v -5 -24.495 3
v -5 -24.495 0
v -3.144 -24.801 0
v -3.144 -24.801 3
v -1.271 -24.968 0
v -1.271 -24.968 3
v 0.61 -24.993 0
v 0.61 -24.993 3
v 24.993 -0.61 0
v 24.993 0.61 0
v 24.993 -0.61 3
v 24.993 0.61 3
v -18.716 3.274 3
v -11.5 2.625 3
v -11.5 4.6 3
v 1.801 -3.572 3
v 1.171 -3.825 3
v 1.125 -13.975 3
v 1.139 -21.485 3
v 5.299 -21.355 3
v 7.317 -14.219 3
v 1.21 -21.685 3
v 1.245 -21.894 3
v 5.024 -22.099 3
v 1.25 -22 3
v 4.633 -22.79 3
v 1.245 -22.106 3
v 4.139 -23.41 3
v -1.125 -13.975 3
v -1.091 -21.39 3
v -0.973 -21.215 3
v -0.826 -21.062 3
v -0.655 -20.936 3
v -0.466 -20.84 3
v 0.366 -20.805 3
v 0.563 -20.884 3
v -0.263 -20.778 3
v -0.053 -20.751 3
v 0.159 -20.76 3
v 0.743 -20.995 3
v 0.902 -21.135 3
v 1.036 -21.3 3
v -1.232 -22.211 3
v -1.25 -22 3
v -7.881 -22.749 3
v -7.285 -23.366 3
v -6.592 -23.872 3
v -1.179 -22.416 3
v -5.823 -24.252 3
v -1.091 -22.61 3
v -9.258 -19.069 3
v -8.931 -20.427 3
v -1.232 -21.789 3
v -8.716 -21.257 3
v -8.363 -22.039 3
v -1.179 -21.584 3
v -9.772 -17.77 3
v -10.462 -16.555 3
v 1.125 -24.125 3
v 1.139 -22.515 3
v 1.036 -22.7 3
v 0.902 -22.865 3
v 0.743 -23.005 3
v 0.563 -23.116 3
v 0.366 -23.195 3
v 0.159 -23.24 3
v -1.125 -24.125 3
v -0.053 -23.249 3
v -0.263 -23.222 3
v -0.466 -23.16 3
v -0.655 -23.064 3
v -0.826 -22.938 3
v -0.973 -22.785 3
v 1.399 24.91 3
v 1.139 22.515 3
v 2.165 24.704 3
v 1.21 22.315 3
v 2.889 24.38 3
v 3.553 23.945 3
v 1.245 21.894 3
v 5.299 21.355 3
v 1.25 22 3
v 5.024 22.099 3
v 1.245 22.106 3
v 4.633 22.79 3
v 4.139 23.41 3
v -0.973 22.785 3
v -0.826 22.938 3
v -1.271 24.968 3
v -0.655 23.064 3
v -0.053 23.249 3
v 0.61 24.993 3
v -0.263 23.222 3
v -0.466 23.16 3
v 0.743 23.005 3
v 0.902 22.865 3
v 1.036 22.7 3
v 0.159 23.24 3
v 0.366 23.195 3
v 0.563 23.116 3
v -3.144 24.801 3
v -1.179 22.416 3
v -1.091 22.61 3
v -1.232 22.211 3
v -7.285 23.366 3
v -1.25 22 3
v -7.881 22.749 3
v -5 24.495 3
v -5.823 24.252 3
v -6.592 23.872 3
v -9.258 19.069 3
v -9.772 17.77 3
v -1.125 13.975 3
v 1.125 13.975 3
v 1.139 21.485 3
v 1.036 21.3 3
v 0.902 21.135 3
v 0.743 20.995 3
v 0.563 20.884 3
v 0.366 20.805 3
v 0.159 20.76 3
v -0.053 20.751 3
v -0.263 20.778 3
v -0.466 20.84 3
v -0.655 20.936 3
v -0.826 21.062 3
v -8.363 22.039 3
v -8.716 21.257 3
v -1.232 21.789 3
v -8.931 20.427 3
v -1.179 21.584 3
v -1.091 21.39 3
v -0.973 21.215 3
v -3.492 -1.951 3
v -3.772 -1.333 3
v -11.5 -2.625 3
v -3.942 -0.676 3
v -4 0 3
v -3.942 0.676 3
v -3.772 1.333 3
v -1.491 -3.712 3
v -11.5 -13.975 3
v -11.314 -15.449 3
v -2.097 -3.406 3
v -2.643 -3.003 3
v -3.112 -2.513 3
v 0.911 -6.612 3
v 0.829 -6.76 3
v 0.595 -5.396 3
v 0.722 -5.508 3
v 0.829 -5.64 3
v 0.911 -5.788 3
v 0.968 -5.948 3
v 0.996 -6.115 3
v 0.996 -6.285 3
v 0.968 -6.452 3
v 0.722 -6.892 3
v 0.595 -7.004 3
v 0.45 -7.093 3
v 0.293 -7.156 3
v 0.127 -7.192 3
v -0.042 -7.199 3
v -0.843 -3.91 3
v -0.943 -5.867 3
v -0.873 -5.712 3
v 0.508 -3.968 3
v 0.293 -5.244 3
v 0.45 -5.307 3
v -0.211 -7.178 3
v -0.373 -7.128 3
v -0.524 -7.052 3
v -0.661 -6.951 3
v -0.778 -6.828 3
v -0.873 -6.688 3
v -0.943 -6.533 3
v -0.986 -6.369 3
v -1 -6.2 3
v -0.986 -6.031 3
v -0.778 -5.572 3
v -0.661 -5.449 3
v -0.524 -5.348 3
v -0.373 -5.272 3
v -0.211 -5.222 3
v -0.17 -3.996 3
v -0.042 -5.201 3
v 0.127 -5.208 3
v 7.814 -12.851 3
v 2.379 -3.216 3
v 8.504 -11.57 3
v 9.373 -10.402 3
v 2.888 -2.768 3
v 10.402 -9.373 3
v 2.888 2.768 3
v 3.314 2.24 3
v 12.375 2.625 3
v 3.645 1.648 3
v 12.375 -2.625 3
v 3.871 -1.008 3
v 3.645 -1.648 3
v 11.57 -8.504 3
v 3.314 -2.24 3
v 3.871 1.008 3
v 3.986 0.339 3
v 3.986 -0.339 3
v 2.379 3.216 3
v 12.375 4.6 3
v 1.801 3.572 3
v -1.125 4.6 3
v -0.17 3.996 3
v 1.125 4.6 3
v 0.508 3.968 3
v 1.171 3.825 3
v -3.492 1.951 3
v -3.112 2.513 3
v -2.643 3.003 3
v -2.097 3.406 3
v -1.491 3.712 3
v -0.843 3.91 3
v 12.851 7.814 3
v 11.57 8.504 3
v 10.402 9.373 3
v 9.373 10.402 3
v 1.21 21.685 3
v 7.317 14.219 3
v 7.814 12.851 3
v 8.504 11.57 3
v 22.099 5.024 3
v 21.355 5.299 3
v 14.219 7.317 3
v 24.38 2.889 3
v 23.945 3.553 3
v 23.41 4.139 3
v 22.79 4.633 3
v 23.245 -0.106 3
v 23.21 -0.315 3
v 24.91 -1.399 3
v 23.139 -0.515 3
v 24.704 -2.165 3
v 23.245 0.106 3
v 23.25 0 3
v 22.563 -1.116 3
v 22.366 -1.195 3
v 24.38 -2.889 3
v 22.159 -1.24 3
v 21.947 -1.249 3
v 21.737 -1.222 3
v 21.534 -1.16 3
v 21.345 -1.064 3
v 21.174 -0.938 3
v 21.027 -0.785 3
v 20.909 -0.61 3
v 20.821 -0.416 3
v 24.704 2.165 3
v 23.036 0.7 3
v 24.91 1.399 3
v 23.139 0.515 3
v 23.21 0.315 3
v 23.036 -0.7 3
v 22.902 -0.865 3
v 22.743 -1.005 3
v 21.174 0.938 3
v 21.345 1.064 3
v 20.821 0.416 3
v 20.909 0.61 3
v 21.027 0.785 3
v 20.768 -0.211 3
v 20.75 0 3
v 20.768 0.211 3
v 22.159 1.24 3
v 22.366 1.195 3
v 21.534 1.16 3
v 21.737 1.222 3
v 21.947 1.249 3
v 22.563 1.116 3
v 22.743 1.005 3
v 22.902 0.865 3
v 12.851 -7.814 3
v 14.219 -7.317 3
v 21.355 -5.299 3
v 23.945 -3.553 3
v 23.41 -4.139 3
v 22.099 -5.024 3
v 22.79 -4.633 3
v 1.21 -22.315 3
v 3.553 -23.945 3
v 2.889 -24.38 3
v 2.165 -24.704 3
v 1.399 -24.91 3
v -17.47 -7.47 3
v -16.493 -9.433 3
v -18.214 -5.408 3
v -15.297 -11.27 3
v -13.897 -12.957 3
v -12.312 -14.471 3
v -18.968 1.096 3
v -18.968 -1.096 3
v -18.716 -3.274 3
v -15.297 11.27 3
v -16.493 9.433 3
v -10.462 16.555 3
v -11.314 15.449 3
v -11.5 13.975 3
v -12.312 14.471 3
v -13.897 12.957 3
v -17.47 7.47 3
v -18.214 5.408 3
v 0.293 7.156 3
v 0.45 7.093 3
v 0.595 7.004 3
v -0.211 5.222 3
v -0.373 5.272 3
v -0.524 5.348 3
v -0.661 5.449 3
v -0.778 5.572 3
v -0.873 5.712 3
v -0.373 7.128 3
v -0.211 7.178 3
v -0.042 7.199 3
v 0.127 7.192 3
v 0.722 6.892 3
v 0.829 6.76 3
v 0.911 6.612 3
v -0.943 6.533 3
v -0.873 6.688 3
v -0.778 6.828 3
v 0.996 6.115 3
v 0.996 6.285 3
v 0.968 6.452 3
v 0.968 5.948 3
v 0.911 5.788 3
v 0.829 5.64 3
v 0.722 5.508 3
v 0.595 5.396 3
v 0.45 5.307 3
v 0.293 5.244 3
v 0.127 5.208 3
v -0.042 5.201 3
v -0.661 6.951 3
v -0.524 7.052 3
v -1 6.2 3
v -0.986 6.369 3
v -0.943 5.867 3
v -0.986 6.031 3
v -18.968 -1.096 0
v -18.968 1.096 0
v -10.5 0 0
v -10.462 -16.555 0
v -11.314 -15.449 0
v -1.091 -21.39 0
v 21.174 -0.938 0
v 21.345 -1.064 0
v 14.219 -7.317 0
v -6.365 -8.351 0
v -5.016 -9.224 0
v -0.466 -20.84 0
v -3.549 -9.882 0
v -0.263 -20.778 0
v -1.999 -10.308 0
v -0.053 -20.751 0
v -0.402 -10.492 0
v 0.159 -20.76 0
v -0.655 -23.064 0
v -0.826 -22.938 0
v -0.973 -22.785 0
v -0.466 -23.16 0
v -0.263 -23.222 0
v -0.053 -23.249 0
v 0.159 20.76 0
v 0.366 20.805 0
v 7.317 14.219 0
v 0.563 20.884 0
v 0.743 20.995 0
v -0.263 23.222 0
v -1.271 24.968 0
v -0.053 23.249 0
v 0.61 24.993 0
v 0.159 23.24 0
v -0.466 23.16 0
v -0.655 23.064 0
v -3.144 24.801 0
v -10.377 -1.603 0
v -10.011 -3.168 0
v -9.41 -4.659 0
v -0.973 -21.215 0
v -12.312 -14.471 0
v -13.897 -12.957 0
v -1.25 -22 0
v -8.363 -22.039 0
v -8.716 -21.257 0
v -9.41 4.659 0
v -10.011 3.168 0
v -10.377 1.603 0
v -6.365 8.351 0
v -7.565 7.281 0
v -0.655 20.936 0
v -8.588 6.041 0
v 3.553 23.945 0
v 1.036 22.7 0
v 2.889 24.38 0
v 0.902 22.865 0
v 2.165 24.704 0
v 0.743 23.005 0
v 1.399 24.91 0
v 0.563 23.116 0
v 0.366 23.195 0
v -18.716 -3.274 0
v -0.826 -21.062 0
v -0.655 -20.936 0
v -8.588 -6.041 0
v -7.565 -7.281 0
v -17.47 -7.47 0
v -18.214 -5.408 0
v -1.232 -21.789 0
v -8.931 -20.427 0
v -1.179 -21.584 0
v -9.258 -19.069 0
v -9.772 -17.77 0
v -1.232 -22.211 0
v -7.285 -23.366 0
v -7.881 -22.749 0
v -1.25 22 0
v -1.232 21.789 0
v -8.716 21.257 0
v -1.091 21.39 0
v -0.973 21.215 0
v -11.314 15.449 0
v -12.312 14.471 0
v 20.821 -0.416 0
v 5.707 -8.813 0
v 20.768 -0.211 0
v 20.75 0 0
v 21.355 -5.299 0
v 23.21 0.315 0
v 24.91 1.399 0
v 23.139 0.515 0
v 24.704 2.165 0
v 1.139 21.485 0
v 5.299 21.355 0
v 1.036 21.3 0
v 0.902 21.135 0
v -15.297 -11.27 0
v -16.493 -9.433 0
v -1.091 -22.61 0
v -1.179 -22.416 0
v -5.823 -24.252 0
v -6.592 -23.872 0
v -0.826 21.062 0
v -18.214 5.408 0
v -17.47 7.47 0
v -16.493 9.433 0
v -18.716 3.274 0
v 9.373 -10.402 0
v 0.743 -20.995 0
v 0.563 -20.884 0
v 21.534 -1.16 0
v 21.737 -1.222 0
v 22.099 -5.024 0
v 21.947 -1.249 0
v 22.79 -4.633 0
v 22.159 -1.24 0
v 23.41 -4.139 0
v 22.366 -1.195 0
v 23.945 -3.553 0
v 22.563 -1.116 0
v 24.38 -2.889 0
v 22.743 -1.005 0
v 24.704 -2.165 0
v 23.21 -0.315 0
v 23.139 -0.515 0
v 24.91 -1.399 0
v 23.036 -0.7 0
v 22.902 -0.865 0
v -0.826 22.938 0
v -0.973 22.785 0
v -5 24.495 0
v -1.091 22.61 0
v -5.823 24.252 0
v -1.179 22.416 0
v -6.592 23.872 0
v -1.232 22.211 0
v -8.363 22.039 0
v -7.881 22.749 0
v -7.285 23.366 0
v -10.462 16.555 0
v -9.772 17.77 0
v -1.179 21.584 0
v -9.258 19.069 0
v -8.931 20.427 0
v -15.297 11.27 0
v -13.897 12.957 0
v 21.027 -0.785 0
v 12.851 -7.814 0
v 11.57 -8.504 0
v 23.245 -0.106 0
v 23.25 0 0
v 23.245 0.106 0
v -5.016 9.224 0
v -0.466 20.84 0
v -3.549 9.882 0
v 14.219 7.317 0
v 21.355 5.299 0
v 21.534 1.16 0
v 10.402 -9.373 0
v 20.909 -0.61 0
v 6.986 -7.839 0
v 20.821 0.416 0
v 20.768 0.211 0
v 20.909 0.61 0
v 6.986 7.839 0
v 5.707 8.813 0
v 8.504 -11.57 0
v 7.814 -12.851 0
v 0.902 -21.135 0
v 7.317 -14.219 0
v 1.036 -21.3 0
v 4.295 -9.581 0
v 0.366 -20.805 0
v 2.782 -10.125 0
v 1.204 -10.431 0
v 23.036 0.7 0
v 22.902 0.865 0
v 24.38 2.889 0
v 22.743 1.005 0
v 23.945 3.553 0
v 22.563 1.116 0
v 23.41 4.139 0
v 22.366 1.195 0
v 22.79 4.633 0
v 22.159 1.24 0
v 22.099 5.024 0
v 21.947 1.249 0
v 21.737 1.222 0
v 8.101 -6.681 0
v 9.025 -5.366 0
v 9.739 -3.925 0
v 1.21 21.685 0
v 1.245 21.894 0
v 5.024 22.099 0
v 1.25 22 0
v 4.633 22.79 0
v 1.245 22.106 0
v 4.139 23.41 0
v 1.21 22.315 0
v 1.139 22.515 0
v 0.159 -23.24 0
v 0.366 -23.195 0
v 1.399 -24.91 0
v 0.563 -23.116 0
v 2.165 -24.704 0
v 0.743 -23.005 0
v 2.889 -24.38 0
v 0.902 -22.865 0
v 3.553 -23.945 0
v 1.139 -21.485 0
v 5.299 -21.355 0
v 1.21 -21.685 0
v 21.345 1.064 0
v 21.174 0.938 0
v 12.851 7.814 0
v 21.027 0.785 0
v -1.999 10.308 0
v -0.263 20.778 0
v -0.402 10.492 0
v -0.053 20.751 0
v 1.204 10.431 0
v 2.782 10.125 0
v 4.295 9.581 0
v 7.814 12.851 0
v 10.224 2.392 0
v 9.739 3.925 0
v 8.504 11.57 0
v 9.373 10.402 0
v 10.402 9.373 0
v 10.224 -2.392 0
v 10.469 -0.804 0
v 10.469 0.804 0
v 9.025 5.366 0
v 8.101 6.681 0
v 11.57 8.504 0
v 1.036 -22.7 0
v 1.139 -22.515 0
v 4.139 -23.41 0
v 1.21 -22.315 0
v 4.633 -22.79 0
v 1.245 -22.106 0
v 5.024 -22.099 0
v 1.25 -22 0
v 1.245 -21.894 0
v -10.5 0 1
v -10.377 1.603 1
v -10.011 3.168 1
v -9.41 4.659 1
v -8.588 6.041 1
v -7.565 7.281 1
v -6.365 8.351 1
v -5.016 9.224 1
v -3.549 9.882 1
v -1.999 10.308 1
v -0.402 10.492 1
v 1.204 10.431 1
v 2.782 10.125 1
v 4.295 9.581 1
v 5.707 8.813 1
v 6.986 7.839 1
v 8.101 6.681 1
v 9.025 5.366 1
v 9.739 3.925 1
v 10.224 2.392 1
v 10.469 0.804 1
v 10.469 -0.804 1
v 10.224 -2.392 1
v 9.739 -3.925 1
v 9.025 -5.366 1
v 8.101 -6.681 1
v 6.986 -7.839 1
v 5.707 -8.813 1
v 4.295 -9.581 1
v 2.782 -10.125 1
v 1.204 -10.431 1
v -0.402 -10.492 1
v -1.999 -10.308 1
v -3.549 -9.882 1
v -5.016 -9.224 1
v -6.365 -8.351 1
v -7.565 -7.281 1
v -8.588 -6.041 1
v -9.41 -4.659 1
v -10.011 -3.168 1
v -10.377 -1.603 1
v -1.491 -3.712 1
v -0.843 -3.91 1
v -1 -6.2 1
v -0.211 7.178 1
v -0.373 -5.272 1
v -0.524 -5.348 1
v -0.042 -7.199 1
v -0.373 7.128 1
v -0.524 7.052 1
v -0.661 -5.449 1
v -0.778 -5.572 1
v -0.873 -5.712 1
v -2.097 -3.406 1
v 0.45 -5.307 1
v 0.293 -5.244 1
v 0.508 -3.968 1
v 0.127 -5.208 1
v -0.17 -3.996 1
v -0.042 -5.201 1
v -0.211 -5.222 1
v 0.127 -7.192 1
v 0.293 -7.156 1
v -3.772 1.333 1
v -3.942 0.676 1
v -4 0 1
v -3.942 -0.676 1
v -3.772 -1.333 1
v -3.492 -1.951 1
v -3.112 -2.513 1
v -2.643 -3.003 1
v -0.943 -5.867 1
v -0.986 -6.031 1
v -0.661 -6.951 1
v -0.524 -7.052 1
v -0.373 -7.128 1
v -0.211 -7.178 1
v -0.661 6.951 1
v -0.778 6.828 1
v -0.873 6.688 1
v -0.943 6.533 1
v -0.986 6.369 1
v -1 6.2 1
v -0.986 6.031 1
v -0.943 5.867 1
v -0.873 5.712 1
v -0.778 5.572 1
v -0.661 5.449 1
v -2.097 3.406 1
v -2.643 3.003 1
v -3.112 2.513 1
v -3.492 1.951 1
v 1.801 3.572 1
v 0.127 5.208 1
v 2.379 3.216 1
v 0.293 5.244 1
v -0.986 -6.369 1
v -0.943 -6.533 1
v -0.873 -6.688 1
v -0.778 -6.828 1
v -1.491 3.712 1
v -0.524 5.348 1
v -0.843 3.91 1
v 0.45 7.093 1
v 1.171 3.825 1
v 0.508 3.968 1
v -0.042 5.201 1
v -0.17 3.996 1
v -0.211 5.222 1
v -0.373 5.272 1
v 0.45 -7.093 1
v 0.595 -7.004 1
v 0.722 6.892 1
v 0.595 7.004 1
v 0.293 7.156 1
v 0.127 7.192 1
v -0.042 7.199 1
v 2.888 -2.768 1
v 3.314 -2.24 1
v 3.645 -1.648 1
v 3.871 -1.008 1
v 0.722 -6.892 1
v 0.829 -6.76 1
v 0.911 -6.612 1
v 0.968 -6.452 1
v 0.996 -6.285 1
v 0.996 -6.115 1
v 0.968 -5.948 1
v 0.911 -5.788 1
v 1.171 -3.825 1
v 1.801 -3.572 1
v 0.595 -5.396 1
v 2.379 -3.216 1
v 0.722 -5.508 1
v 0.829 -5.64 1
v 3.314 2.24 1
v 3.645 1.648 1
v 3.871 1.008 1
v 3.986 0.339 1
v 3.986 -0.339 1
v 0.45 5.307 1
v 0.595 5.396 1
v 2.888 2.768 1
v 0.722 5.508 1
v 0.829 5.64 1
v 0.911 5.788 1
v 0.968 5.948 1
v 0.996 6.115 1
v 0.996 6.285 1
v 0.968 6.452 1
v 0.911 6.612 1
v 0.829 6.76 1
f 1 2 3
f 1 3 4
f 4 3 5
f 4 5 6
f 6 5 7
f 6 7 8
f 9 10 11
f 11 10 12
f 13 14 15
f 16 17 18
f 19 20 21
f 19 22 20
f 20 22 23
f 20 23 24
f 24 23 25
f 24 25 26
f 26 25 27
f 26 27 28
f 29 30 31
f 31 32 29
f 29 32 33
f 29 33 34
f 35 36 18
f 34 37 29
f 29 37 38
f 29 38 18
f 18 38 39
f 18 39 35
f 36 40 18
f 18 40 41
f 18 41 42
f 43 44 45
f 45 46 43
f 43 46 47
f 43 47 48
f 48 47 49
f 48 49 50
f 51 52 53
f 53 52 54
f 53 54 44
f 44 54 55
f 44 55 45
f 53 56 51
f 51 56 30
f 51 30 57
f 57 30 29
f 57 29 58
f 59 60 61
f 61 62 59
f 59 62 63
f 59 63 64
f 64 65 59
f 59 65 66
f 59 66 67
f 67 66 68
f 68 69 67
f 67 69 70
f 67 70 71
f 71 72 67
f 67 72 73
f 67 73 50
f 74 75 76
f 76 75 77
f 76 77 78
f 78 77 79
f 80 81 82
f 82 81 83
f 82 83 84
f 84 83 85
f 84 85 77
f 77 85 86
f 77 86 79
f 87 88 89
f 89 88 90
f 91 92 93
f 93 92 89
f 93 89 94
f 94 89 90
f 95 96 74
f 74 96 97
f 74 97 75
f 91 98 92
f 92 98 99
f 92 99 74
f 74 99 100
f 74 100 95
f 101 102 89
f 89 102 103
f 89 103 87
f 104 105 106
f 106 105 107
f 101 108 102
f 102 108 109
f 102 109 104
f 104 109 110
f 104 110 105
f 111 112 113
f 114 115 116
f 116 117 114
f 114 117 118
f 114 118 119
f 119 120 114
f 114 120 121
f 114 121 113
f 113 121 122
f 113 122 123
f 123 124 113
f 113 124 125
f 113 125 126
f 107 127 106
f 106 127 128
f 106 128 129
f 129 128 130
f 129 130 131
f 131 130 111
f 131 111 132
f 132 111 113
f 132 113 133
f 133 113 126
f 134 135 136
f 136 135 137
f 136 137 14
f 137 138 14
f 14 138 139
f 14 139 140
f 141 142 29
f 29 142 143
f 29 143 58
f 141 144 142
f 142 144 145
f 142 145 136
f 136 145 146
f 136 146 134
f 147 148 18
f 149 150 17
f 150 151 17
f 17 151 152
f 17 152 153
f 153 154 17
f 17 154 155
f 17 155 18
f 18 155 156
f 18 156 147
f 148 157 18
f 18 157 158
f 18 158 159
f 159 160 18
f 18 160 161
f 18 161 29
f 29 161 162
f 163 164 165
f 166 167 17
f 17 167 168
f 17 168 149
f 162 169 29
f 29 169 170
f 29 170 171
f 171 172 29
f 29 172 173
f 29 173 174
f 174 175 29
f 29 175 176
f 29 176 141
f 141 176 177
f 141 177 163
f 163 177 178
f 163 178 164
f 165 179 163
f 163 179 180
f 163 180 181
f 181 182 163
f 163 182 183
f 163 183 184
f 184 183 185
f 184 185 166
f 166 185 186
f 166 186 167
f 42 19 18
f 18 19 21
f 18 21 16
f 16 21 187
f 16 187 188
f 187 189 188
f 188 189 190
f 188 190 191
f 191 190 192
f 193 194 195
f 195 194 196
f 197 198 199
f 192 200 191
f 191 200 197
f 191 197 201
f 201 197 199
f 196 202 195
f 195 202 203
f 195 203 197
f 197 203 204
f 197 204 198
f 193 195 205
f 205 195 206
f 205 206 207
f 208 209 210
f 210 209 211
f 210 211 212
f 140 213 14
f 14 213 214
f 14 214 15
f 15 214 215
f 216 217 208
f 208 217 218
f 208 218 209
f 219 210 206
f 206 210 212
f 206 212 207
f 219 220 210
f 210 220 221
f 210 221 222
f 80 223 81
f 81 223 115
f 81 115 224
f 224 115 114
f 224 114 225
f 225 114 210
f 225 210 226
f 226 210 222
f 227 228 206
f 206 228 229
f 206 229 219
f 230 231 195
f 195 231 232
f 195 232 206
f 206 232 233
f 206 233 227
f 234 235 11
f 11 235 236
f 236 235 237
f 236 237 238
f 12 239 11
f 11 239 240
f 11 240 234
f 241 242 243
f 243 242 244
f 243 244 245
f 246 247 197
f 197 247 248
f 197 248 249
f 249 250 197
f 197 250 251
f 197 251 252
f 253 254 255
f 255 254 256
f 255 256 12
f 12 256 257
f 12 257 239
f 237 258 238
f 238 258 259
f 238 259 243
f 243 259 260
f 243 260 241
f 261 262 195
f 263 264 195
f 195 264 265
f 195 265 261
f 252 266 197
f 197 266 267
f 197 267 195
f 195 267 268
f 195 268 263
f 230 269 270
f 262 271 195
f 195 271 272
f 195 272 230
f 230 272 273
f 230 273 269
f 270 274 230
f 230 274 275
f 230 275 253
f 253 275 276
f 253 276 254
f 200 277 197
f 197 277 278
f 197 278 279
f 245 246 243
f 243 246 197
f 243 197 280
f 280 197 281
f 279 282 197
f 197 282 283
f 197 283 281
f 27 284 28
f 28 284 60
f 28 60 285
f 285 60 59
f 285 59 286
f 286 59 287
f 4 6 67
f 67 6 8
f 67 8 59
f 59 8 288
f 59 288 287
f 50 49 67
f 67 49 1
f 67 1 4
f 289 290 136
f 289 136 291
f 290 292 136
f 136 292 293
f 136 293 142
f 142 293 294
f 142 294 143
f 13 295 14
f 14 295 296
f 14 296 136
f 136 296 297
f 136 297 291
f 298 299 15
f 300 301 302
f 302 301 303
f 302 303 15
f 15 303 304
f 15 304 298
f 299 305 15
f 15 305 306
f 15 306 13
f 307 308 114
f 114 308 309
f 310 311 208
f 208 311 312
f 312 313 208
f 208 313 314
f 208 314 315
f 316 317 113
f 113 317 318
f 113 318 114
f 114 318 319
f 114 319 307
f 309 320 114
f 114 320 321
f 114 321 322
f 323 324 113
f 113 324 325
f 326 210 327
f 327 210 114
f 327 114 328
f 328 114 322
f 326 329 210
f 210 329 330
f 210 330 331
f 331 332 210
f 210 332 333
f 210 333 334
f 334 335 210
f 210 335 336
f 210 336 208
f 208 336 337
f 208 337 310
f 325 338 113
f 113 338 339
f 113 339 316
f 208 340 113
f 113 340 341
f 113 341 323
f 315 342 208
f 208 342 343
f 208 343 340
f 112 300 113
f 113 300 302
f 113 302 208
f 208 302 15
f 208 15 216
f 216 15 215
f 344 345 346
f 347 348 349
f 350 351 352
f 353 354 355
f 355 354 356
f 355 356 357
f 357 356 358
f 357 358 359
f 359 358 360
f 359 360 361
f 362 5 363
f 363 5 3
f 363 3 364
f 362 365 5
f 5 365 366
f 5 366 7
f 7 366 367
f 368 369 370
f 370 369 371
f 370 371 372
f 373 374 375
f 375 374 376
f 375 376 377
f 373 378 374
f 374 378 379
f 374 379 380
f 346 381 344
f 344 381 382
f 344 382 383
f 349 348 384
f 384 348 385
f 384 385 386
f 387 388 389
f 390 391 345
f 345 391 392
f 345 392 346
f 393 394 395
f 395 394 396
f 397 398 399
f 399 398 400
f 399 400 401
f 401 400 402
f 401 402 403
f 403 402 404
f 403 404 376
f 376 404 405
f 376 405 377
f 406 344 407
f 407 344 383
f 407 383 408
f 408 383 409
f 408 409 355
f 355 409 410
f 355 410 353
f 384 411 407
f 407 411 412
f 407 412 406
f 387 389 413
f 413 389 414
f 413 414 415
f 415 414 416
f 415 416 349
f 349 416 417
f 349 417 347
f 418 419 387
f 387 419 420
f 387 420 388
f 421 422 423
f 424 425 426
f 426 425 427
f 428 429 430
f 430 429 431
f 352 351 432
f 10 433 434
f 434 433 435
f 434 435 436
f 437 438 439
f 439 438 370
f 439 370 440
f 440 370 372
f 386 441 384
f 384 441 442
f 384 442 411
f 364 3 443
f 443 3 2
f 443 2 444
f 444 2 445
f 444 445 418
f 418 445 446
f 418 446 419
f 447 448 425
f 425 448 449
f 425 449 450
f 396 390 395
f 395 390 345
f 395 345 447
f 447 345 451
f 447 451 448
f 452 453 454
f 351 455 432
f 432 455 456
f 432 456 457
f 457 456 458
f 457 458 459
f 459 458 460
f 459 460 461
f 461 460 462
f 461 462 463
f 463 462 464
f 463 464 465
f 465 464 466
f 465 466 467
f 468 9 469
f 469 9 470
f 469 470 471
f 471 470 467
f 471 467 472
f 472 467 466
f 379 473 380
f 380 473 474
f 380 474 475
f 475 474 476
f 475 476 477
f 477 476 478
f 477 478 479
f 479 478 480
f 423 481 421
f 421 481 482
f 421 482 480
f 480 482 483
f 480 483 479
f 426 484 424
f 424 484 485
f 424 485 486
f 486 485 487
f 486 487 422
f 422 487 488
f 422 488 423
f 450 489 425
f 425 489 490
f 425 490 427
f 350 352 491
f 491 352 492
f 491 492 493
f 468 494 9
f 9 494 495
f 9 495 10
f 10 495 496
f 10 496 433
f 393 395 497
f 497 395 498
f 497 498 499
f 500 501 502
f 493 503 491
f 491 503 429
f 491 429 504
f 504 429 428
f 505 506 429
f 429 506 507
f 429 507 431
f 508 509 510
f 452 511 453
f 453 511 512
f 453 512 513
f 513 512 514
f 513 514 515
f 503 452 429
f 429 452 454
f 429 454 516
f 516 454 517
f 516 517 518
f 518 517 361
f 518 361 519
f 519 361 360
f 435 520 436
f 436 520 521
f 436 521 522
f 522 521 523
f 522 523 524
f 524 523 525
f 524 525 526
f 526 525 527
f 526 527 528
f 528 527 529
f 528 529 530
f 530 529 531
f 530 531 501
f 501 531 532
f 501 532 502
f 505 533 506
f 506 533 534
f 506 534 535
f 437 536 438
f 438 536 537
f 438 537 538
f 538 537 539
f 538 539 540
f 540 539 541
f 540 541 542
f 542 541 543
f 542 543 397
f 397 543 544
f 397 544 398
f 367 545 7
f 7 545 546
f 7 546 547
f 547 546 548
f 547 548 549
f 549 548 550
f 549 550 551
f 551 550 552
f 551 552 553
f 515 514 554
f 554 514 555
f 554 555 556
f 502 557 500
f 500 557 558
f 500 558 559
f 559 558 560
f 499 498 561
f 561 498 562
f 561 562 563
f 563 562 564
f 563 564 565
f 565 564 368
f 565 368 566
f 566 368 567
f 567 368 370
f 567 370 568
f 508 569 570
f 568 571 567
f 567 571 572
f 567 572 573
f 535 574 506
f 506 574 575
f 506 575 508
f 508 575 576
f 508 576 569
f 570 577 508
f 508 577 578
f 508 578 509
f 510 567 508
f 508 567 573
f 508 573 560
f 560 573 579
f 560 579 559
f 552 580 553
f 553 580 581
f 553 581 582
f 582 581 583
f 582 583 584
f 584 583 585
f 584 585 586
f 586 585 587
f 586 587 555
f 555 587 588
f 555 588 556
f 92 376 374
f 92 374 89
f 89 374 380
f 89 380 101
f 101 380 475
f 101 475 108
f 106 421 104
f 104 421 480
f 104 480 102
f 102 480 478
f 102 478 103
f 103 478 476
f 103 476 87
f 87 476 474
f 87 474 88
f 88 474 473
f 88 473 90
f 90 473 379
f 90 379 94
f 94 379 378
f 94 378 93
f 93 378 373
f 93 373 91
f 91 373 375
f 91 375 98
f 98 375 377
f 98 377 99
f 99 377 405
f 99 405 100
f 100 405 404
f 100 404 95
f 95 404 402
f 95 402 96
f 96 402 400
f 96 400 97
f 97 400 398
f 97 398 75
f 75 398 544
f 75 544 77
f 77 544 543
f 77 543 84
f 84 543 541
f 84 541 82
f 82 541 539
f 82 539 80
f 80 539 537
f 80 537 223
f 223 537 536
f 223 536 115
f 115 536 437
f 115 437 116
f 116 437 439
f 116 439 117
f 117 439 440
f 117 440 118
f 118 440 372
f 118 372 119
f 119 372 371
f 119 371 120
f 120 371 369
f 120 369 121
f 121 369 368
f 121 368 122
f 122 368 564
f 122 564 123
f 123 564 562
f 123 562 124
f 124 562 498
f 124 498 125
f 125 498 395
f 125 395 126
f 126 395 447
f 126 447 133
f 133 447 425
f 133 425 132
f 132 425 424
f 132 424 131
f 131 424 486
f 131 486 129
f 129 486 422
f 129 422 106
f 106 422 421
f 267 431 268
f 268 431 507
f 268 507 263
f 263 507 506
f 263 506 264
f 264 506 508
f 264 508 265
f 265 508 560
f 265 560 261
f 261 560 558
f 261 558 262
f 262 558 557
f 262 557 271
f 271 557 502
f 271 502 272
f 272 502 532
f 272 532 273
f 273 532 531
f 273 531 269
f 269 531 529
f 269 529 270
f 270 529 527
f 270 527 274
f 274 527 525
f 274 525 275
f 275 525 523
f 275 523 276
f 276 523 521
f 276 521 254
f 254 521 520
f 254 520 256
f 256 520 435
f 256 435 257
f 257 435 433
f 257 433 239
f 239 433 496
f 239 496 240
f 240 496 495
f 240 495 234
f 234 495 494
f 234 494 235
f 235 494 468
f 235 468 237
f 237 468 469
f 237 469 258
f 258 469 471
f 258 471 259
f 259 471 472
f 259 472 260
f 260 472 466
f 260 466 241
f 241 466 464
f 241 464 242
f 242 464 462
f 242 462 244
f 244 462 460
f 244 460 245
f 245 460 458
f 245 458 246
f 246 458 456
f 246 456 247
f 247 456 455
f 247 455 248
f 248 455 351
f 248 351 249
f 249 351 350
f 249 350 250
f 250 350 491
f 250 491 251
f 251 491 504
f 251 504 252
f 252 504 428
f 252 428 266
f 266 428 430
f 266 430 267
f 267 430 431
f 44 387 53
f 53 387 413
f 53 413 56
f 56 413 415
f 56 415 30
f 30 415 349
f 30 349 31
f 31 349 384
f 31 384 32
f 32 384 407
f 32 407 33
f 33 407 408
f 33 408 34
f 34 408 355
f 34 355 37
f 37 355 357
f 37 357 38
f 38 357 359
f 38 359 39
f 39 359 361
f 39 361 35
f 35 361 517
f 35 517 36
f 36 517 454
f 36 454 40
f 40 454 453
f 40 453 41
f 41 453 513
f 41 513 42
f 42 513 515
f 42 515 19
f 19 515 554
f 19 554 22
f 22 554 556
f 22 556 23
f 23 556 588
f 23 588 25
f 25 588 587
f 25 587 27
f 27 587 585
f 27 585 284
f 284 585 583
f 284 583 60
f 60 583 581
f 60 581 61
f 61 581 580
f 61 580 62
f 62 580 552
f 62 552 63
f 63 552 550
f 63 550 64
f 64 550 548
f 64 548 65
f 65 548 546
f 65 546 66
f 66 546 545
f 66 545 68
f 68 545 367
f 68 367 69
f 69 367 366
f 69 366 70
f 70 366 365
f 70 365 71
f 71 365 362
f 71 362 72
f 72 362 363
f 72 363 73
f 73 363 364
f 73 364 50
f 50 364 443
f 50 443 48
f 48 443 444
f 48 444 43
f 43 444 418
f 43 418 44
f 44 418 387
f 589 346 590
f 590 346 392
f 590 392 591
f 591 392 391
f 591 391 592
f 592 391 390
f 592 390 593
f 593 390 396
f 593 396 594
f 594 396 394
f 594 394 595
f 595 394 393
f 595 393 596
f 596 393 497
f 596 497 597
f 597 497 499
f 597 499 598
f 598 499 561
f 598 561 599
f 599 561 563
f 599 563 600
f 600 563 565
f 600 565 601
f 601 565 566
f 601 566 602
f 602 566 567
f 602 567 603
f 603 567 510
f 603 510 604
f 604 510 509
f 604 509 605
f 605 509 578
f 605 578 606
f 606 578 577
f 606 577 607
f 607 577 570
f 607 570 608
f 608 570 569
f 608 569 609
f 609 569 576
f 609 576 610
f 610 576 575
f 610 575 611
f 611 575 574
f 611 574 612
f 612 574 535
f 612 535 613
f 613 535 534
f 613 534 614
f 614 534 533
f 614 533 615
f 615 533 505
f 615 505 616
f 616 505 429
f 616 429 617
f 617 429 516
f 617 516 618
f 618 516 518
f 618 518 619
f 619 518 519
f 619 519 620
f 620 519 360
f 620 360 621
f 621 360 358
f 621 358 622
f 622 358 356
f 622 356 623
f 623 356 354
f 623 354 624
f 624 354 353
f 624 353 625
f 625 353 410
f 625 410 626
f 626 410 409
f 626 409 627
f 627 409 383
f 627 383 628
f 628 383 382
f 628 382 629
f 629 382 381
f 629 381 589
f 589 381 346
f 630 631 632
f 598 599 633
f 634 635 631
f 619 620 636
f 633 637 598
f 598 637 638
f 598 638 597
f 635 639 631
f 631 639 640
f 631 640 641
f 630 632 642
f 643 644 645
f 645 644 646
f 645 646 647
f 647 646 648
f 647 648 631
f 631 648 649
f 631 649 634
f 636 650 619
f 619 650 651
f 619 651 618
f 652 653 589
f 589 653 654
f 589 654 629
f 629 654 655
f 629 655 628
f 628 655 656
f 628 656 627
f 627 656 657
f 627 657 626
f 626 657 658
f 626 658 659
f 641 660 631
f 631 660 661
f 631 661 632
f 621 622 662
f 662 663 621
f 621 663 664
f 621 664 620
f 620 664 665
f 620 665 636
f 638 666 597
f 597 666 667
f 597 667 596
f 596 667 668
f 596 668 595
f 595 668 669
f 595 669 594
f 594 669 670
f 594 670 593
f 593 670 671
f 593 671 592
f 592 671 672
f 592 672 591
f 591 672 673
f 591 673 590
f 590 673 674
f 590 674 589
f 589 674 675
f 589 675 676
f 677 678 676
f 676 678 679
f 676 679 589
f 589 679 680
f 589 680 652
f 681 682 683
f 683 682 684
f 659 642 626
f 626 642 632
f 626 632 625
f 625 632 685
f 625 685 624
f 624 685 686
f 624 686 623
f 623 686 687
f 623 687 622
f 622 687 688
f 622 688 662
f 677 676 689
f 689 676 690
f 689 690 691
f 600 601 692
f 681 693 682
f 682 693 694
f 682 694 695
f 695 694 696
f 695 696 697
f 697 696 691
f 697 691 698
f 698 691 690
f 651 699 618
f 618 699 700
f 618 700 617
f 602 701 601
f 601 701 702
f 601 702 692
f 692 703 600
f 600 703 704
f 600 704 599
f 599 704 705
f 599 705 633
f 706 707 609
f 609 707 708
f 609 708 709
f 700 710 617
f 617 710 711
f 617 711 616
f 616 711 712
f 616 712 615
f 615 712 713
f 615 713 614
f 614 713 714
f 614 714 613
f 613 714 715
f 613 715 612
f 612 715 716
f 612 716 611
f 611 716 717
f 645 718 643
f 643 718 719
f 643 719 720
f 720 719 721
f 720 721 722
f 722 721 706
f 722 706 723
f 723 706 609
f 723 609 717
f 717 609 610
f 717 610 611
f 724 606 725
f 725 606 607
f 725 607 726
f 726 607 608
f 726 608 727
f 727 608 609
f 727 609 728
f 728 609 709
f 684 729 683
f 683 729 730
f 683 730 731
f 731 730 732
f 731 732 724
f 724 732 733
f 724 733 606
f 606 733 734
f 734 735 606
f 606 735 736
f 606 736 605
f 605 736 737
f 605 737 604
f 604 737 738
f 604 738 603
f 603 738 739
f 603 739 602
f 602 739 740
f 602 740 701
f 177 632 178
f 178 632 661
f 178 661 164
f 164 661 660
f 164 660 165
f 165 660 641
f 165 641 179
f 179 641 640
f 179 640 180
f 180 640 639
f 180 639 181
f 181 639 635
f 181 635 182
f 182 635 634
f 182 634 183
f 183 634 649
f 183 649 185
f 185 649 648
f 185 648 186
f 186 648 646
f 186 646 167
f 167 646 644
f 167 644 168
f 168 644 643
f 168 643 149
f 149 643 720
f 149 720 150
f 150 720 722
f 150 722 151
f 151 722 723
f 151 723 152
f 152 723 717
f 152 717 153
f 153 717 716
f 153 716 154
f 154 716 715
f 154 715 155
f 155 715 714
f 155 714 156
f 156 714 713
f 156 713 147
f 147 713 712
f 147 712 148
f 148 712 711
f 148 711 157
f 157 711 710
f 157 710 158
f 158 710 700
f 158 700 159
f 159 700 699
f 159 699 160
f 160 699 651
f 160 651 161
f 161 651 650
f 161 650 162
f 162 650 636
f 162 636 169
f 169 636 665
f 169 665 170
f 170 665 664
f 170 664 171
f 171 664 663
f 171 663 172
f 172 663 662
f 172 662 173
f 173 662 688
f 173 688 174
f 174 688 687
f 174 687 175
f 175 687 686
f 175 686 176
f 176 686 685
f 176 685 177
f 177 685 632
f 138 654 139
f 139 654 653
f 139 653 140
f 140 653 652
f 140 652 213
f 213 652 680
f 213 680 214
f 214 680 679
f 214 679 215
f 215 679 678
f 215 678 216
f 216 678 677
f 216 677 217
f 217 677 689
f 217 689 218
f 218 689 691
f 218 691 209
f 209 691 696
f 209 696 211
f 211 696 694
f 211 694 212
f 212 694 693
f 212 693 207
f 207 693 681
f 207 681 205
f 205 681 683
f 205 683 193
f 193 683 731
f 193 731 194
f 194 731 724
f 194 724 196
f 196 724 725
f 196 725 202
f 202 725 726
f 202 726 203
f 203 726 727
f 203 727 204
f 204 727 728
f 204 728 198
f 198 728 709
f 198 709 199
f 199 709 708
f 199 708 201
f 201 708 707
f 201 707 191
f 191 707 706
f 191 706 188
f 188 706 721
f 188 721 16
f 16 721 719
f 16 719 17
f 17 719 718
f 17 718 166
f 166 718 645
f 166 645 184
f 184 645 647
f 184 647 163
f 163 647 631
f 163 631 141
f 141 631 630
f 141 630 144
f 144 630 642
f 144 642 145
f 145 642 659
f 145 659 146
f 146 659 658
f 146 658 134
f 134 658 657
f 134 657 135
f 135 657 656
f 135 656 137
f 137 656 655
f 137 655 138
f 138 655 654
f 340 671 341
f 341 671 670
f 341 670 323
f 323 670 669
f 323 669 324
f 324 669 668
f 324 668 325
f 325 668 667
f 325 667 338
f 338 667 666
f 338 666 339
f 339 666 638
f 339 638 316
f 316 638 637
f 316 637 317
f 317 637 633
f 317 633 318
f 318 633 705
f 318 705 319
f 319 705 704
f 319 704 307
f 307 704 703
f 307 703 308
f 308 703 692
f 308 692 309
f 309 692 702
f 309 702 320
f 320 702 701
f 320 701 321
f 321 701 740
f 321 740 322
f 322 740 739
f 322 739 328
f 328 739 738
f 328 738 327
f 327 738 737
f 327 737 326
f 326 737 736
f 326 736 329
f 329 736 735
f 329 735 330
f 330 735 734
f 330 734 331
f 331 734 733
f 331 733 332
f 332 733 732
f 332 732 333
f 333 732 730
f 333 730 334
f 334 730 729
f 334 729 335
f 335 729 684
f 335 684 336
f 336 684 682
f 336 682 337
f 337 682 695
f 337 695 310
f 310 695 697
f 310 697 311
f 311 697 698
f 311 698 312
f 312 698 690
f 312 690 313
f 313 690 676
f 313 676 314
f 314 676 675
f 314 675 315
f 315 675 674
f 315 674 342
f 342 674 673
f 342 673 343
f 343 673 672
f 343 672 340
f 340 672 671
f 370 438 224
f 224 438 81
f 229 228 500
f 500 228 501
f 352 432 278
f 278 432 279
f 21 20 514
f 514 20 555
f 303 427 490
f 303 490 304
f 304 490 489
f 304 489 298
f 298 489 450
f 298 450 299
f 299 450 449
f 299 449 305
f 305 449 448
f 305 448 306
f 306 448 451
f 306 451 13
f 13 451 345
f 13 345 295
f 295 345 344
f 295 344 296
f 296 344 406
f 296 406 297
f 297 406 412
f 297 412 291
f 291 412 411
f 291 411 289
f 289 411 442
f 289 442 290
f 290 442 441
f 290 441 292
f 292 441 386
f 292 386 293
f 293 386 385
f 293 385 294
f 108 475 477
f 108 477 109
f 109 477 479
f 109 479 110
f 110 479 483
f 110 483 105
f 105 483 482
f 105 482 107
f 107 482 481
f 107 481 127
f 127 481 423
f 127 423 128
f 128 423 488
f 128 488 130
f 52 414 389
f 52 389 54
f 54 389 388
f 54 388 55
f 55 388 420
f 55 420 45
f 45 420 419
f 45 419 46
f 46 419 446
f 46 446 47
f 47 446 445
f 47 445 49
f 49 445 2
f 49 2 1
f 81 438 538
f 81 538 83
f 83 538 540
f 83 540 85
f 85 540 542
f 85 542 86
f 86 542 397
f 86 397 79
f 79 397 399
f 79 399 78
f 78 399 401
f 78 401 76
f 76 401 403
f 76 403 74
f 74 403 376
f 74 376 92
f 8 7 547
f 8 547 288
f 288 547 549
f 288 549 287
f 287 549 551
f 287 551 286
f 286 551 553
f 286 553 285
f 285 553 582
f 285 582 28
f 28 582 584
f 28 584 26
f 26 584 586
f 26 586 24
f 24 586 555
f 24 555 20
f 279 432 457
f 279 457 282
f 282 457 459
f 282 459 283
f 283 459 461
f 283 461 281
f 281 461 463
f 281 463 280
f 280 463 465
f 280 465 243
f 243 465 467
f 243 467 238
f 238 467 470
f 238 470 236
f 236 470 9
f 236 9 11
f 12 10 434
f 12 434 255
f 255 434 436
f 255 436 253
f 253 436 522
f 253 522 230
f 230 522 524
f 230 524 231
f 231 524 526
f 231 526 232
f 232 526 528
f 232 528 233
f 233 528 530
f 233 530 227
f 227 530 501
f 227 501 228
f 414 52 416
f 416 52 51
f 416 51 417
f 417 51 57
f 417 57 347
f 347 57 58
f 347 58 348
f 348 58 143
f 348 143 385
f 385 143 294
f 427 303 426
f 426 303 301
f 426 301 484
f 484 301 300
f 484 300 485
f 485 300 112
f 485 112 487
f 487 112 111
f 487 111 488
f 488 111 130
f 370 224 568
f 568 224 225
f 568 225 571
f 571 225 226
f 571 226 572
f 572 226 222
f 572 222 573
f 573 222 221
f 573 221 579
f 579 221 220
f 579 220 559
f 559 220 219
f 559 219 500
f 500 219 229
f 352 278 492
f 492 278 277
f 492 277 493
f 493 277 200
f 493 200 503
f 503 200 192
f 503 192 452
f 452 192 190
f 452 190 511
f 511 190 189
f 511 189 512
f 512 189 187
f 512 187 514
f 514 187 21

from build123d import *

# Parameters (mm, degrees)
SKETCH_1_R               = 25
SKETCH_1_R_2             = 1.25
EXTRUDE_1_DEPTH          = 3
SKETCH_3_R               = 10.5
SKETCH_3_R_2             = 4
SKETCH_3_R_3             = 1
CUT_EXTRUDE_1_DEPTH      = 1
CUT_EXTRUDE_2_DEPTH      = 36.482389998
CUT_EXTRUDE_2_DEPTH_BACK = 36.482389998
SKETCH_3_2_R             = 4
SKETCH_3_2_R_2           = 1
CUT_EXTRUDE_5_DEPTH      = 10
FILLET_2_R               = 5
FILLET_3_R               = 10


with BuildPart() as part:
    # 草图1 → 凸台-拉伸1 (new body)
    with BuildSketch(Plane.XY):
        Circle(SKETCH_1_R)
        with Locations((0, 22)):
            Circle(SKETCH_1_R_2, mode=Mode.SUBTRACT)
        with Locations((22, 0)):
            Circle(SKETCH_1_R_2, mode=Mode.SUBTRACT)
        with Locations((0, -22)):
            Circle(SKETCH_1_R_2, mode=Mode.SUBTRACT)
    extrude(amount=EXTRUDE_1_DEPTH)

    # 草图3 → 切除-拉伸1 (cut)
    with BuildSketch(Plane(origin=(0, 0, 0), x_dir=(-1, 0, 0), z_dir=(0, 0, -1))):
        Circle(SKETCH_3_R)
        Circle(SKETCH_3_R_2, mode=Mode.SUBTRACT)
        with Locations((0, 6.2)):
            Circle(SKETCH_3_R_3, mode=Mode.SUBTRACT)
        with Locations((0, -6.2)):
            Circle(SKETCH_3_R_3, mode=Mode.SUBTRACT)
    extrude(amount=-CUT_EXTRUDE_1_DEPTH, mode=Mode.SUBTRACT)

    # 草图3<2> → 切除-拉伸2 (cut, two sides: drawn at the far end of the back side and taken through both)
    with BuildSketch(Plane(origin=(0, 0, 0), x_dir=(-1, 0, 0), z_dir=(0, 0, -1)).offset(-CUT_EXTRUDE_2_DEPTH_BACK)):
        Circle(SKETCH_3_2_R)
        with Locations((0, 6.2)):
            Circle(SKETCH_3_2_R_2)
        with Locations((0, -6.2)):
            Circle(SKETCH_3_2_R_2)
    extrude(amount=CUT_EXTRUDE_2_DEPTH + CUT_EXTRUDE_2_DEPTH_BACK, mode=Mode.SUBTRACT)

    # 草图5 → 切除-拉伸5 (cut)
    with BuildSketch(Plane(origin=(0, 0, 0), x_dir=(-1, 0, 0), z_dir=(0, 0, -1))):
        with BuildLine():
            Line((-24.613742187, 4.377635842), (-8.838834765, 8.838834765))
            Line((-8.838834765, 8.838834765), (-4.377635842, 24.613742187))
            ThreePointArc((-4.377635842, 24.613742187), (-17.67766953, 17.67766953), (-24.613742187, 4.377635842))
        make_face()
        with BuildLine():
            Line((-4.377635842, -24.613742187), (-8.838834765, -8.838834765))
            Line((-8.838834765, -8.838834765), (-24.613742187, -4.377635842))
            ThreePointArc((-24.613742187, -4.377635842), (-17.67766953, -17.67766953), (-4.377635842, -24.613742187))
        make_face()
        with BuildLine():
            Line((9, -16.733200531), (9, -23.323807579))
            ThreePointArc((9, -23.323807579), (25, 0), (9, 23.323807579))
            Line((9, 23.323807579), (9, 16.733200531))
            ThreePointArc((9, 16.733200531), (19, 0), (9, -16.733200531))
        make_face()
    extrude(amount=-CUT_EXTRUDE_5_DEPTH, mode=Mode.SUBTRACT)

    # 圆角2
    fillet_2_edges = [part.edges().sort_by_distance(p)[0] for p in [
        (4.377635842, 24.613742187, 1.5),
        (4.377635842, -24.613742187, 1.5),
        (24.613742187, -4.377635842, 1.5),
        (24.613742187, 4.377635842, 1.5),
        (-9, 23.323807579, 1.5),
        (-9, -23.323807579, 1.5),
    ]]
    fillet(fillet_2_edges, radius=FILLET_2_R)

    # 圆角3
    fillet_3_edges = [part.edges().sort_by_distance(p)[0] for p in [
        (8.838834765, 8.838834765, 1.5),
        (8.838834765, -8.838834765, 1.5),
        (-9, -16.733200531, 1.5),
        (-9, 16.733200531, 1.5),
    ]]
    fillet(fillet_3_edges, radius=FILLET_3_R)


solid = part.part
